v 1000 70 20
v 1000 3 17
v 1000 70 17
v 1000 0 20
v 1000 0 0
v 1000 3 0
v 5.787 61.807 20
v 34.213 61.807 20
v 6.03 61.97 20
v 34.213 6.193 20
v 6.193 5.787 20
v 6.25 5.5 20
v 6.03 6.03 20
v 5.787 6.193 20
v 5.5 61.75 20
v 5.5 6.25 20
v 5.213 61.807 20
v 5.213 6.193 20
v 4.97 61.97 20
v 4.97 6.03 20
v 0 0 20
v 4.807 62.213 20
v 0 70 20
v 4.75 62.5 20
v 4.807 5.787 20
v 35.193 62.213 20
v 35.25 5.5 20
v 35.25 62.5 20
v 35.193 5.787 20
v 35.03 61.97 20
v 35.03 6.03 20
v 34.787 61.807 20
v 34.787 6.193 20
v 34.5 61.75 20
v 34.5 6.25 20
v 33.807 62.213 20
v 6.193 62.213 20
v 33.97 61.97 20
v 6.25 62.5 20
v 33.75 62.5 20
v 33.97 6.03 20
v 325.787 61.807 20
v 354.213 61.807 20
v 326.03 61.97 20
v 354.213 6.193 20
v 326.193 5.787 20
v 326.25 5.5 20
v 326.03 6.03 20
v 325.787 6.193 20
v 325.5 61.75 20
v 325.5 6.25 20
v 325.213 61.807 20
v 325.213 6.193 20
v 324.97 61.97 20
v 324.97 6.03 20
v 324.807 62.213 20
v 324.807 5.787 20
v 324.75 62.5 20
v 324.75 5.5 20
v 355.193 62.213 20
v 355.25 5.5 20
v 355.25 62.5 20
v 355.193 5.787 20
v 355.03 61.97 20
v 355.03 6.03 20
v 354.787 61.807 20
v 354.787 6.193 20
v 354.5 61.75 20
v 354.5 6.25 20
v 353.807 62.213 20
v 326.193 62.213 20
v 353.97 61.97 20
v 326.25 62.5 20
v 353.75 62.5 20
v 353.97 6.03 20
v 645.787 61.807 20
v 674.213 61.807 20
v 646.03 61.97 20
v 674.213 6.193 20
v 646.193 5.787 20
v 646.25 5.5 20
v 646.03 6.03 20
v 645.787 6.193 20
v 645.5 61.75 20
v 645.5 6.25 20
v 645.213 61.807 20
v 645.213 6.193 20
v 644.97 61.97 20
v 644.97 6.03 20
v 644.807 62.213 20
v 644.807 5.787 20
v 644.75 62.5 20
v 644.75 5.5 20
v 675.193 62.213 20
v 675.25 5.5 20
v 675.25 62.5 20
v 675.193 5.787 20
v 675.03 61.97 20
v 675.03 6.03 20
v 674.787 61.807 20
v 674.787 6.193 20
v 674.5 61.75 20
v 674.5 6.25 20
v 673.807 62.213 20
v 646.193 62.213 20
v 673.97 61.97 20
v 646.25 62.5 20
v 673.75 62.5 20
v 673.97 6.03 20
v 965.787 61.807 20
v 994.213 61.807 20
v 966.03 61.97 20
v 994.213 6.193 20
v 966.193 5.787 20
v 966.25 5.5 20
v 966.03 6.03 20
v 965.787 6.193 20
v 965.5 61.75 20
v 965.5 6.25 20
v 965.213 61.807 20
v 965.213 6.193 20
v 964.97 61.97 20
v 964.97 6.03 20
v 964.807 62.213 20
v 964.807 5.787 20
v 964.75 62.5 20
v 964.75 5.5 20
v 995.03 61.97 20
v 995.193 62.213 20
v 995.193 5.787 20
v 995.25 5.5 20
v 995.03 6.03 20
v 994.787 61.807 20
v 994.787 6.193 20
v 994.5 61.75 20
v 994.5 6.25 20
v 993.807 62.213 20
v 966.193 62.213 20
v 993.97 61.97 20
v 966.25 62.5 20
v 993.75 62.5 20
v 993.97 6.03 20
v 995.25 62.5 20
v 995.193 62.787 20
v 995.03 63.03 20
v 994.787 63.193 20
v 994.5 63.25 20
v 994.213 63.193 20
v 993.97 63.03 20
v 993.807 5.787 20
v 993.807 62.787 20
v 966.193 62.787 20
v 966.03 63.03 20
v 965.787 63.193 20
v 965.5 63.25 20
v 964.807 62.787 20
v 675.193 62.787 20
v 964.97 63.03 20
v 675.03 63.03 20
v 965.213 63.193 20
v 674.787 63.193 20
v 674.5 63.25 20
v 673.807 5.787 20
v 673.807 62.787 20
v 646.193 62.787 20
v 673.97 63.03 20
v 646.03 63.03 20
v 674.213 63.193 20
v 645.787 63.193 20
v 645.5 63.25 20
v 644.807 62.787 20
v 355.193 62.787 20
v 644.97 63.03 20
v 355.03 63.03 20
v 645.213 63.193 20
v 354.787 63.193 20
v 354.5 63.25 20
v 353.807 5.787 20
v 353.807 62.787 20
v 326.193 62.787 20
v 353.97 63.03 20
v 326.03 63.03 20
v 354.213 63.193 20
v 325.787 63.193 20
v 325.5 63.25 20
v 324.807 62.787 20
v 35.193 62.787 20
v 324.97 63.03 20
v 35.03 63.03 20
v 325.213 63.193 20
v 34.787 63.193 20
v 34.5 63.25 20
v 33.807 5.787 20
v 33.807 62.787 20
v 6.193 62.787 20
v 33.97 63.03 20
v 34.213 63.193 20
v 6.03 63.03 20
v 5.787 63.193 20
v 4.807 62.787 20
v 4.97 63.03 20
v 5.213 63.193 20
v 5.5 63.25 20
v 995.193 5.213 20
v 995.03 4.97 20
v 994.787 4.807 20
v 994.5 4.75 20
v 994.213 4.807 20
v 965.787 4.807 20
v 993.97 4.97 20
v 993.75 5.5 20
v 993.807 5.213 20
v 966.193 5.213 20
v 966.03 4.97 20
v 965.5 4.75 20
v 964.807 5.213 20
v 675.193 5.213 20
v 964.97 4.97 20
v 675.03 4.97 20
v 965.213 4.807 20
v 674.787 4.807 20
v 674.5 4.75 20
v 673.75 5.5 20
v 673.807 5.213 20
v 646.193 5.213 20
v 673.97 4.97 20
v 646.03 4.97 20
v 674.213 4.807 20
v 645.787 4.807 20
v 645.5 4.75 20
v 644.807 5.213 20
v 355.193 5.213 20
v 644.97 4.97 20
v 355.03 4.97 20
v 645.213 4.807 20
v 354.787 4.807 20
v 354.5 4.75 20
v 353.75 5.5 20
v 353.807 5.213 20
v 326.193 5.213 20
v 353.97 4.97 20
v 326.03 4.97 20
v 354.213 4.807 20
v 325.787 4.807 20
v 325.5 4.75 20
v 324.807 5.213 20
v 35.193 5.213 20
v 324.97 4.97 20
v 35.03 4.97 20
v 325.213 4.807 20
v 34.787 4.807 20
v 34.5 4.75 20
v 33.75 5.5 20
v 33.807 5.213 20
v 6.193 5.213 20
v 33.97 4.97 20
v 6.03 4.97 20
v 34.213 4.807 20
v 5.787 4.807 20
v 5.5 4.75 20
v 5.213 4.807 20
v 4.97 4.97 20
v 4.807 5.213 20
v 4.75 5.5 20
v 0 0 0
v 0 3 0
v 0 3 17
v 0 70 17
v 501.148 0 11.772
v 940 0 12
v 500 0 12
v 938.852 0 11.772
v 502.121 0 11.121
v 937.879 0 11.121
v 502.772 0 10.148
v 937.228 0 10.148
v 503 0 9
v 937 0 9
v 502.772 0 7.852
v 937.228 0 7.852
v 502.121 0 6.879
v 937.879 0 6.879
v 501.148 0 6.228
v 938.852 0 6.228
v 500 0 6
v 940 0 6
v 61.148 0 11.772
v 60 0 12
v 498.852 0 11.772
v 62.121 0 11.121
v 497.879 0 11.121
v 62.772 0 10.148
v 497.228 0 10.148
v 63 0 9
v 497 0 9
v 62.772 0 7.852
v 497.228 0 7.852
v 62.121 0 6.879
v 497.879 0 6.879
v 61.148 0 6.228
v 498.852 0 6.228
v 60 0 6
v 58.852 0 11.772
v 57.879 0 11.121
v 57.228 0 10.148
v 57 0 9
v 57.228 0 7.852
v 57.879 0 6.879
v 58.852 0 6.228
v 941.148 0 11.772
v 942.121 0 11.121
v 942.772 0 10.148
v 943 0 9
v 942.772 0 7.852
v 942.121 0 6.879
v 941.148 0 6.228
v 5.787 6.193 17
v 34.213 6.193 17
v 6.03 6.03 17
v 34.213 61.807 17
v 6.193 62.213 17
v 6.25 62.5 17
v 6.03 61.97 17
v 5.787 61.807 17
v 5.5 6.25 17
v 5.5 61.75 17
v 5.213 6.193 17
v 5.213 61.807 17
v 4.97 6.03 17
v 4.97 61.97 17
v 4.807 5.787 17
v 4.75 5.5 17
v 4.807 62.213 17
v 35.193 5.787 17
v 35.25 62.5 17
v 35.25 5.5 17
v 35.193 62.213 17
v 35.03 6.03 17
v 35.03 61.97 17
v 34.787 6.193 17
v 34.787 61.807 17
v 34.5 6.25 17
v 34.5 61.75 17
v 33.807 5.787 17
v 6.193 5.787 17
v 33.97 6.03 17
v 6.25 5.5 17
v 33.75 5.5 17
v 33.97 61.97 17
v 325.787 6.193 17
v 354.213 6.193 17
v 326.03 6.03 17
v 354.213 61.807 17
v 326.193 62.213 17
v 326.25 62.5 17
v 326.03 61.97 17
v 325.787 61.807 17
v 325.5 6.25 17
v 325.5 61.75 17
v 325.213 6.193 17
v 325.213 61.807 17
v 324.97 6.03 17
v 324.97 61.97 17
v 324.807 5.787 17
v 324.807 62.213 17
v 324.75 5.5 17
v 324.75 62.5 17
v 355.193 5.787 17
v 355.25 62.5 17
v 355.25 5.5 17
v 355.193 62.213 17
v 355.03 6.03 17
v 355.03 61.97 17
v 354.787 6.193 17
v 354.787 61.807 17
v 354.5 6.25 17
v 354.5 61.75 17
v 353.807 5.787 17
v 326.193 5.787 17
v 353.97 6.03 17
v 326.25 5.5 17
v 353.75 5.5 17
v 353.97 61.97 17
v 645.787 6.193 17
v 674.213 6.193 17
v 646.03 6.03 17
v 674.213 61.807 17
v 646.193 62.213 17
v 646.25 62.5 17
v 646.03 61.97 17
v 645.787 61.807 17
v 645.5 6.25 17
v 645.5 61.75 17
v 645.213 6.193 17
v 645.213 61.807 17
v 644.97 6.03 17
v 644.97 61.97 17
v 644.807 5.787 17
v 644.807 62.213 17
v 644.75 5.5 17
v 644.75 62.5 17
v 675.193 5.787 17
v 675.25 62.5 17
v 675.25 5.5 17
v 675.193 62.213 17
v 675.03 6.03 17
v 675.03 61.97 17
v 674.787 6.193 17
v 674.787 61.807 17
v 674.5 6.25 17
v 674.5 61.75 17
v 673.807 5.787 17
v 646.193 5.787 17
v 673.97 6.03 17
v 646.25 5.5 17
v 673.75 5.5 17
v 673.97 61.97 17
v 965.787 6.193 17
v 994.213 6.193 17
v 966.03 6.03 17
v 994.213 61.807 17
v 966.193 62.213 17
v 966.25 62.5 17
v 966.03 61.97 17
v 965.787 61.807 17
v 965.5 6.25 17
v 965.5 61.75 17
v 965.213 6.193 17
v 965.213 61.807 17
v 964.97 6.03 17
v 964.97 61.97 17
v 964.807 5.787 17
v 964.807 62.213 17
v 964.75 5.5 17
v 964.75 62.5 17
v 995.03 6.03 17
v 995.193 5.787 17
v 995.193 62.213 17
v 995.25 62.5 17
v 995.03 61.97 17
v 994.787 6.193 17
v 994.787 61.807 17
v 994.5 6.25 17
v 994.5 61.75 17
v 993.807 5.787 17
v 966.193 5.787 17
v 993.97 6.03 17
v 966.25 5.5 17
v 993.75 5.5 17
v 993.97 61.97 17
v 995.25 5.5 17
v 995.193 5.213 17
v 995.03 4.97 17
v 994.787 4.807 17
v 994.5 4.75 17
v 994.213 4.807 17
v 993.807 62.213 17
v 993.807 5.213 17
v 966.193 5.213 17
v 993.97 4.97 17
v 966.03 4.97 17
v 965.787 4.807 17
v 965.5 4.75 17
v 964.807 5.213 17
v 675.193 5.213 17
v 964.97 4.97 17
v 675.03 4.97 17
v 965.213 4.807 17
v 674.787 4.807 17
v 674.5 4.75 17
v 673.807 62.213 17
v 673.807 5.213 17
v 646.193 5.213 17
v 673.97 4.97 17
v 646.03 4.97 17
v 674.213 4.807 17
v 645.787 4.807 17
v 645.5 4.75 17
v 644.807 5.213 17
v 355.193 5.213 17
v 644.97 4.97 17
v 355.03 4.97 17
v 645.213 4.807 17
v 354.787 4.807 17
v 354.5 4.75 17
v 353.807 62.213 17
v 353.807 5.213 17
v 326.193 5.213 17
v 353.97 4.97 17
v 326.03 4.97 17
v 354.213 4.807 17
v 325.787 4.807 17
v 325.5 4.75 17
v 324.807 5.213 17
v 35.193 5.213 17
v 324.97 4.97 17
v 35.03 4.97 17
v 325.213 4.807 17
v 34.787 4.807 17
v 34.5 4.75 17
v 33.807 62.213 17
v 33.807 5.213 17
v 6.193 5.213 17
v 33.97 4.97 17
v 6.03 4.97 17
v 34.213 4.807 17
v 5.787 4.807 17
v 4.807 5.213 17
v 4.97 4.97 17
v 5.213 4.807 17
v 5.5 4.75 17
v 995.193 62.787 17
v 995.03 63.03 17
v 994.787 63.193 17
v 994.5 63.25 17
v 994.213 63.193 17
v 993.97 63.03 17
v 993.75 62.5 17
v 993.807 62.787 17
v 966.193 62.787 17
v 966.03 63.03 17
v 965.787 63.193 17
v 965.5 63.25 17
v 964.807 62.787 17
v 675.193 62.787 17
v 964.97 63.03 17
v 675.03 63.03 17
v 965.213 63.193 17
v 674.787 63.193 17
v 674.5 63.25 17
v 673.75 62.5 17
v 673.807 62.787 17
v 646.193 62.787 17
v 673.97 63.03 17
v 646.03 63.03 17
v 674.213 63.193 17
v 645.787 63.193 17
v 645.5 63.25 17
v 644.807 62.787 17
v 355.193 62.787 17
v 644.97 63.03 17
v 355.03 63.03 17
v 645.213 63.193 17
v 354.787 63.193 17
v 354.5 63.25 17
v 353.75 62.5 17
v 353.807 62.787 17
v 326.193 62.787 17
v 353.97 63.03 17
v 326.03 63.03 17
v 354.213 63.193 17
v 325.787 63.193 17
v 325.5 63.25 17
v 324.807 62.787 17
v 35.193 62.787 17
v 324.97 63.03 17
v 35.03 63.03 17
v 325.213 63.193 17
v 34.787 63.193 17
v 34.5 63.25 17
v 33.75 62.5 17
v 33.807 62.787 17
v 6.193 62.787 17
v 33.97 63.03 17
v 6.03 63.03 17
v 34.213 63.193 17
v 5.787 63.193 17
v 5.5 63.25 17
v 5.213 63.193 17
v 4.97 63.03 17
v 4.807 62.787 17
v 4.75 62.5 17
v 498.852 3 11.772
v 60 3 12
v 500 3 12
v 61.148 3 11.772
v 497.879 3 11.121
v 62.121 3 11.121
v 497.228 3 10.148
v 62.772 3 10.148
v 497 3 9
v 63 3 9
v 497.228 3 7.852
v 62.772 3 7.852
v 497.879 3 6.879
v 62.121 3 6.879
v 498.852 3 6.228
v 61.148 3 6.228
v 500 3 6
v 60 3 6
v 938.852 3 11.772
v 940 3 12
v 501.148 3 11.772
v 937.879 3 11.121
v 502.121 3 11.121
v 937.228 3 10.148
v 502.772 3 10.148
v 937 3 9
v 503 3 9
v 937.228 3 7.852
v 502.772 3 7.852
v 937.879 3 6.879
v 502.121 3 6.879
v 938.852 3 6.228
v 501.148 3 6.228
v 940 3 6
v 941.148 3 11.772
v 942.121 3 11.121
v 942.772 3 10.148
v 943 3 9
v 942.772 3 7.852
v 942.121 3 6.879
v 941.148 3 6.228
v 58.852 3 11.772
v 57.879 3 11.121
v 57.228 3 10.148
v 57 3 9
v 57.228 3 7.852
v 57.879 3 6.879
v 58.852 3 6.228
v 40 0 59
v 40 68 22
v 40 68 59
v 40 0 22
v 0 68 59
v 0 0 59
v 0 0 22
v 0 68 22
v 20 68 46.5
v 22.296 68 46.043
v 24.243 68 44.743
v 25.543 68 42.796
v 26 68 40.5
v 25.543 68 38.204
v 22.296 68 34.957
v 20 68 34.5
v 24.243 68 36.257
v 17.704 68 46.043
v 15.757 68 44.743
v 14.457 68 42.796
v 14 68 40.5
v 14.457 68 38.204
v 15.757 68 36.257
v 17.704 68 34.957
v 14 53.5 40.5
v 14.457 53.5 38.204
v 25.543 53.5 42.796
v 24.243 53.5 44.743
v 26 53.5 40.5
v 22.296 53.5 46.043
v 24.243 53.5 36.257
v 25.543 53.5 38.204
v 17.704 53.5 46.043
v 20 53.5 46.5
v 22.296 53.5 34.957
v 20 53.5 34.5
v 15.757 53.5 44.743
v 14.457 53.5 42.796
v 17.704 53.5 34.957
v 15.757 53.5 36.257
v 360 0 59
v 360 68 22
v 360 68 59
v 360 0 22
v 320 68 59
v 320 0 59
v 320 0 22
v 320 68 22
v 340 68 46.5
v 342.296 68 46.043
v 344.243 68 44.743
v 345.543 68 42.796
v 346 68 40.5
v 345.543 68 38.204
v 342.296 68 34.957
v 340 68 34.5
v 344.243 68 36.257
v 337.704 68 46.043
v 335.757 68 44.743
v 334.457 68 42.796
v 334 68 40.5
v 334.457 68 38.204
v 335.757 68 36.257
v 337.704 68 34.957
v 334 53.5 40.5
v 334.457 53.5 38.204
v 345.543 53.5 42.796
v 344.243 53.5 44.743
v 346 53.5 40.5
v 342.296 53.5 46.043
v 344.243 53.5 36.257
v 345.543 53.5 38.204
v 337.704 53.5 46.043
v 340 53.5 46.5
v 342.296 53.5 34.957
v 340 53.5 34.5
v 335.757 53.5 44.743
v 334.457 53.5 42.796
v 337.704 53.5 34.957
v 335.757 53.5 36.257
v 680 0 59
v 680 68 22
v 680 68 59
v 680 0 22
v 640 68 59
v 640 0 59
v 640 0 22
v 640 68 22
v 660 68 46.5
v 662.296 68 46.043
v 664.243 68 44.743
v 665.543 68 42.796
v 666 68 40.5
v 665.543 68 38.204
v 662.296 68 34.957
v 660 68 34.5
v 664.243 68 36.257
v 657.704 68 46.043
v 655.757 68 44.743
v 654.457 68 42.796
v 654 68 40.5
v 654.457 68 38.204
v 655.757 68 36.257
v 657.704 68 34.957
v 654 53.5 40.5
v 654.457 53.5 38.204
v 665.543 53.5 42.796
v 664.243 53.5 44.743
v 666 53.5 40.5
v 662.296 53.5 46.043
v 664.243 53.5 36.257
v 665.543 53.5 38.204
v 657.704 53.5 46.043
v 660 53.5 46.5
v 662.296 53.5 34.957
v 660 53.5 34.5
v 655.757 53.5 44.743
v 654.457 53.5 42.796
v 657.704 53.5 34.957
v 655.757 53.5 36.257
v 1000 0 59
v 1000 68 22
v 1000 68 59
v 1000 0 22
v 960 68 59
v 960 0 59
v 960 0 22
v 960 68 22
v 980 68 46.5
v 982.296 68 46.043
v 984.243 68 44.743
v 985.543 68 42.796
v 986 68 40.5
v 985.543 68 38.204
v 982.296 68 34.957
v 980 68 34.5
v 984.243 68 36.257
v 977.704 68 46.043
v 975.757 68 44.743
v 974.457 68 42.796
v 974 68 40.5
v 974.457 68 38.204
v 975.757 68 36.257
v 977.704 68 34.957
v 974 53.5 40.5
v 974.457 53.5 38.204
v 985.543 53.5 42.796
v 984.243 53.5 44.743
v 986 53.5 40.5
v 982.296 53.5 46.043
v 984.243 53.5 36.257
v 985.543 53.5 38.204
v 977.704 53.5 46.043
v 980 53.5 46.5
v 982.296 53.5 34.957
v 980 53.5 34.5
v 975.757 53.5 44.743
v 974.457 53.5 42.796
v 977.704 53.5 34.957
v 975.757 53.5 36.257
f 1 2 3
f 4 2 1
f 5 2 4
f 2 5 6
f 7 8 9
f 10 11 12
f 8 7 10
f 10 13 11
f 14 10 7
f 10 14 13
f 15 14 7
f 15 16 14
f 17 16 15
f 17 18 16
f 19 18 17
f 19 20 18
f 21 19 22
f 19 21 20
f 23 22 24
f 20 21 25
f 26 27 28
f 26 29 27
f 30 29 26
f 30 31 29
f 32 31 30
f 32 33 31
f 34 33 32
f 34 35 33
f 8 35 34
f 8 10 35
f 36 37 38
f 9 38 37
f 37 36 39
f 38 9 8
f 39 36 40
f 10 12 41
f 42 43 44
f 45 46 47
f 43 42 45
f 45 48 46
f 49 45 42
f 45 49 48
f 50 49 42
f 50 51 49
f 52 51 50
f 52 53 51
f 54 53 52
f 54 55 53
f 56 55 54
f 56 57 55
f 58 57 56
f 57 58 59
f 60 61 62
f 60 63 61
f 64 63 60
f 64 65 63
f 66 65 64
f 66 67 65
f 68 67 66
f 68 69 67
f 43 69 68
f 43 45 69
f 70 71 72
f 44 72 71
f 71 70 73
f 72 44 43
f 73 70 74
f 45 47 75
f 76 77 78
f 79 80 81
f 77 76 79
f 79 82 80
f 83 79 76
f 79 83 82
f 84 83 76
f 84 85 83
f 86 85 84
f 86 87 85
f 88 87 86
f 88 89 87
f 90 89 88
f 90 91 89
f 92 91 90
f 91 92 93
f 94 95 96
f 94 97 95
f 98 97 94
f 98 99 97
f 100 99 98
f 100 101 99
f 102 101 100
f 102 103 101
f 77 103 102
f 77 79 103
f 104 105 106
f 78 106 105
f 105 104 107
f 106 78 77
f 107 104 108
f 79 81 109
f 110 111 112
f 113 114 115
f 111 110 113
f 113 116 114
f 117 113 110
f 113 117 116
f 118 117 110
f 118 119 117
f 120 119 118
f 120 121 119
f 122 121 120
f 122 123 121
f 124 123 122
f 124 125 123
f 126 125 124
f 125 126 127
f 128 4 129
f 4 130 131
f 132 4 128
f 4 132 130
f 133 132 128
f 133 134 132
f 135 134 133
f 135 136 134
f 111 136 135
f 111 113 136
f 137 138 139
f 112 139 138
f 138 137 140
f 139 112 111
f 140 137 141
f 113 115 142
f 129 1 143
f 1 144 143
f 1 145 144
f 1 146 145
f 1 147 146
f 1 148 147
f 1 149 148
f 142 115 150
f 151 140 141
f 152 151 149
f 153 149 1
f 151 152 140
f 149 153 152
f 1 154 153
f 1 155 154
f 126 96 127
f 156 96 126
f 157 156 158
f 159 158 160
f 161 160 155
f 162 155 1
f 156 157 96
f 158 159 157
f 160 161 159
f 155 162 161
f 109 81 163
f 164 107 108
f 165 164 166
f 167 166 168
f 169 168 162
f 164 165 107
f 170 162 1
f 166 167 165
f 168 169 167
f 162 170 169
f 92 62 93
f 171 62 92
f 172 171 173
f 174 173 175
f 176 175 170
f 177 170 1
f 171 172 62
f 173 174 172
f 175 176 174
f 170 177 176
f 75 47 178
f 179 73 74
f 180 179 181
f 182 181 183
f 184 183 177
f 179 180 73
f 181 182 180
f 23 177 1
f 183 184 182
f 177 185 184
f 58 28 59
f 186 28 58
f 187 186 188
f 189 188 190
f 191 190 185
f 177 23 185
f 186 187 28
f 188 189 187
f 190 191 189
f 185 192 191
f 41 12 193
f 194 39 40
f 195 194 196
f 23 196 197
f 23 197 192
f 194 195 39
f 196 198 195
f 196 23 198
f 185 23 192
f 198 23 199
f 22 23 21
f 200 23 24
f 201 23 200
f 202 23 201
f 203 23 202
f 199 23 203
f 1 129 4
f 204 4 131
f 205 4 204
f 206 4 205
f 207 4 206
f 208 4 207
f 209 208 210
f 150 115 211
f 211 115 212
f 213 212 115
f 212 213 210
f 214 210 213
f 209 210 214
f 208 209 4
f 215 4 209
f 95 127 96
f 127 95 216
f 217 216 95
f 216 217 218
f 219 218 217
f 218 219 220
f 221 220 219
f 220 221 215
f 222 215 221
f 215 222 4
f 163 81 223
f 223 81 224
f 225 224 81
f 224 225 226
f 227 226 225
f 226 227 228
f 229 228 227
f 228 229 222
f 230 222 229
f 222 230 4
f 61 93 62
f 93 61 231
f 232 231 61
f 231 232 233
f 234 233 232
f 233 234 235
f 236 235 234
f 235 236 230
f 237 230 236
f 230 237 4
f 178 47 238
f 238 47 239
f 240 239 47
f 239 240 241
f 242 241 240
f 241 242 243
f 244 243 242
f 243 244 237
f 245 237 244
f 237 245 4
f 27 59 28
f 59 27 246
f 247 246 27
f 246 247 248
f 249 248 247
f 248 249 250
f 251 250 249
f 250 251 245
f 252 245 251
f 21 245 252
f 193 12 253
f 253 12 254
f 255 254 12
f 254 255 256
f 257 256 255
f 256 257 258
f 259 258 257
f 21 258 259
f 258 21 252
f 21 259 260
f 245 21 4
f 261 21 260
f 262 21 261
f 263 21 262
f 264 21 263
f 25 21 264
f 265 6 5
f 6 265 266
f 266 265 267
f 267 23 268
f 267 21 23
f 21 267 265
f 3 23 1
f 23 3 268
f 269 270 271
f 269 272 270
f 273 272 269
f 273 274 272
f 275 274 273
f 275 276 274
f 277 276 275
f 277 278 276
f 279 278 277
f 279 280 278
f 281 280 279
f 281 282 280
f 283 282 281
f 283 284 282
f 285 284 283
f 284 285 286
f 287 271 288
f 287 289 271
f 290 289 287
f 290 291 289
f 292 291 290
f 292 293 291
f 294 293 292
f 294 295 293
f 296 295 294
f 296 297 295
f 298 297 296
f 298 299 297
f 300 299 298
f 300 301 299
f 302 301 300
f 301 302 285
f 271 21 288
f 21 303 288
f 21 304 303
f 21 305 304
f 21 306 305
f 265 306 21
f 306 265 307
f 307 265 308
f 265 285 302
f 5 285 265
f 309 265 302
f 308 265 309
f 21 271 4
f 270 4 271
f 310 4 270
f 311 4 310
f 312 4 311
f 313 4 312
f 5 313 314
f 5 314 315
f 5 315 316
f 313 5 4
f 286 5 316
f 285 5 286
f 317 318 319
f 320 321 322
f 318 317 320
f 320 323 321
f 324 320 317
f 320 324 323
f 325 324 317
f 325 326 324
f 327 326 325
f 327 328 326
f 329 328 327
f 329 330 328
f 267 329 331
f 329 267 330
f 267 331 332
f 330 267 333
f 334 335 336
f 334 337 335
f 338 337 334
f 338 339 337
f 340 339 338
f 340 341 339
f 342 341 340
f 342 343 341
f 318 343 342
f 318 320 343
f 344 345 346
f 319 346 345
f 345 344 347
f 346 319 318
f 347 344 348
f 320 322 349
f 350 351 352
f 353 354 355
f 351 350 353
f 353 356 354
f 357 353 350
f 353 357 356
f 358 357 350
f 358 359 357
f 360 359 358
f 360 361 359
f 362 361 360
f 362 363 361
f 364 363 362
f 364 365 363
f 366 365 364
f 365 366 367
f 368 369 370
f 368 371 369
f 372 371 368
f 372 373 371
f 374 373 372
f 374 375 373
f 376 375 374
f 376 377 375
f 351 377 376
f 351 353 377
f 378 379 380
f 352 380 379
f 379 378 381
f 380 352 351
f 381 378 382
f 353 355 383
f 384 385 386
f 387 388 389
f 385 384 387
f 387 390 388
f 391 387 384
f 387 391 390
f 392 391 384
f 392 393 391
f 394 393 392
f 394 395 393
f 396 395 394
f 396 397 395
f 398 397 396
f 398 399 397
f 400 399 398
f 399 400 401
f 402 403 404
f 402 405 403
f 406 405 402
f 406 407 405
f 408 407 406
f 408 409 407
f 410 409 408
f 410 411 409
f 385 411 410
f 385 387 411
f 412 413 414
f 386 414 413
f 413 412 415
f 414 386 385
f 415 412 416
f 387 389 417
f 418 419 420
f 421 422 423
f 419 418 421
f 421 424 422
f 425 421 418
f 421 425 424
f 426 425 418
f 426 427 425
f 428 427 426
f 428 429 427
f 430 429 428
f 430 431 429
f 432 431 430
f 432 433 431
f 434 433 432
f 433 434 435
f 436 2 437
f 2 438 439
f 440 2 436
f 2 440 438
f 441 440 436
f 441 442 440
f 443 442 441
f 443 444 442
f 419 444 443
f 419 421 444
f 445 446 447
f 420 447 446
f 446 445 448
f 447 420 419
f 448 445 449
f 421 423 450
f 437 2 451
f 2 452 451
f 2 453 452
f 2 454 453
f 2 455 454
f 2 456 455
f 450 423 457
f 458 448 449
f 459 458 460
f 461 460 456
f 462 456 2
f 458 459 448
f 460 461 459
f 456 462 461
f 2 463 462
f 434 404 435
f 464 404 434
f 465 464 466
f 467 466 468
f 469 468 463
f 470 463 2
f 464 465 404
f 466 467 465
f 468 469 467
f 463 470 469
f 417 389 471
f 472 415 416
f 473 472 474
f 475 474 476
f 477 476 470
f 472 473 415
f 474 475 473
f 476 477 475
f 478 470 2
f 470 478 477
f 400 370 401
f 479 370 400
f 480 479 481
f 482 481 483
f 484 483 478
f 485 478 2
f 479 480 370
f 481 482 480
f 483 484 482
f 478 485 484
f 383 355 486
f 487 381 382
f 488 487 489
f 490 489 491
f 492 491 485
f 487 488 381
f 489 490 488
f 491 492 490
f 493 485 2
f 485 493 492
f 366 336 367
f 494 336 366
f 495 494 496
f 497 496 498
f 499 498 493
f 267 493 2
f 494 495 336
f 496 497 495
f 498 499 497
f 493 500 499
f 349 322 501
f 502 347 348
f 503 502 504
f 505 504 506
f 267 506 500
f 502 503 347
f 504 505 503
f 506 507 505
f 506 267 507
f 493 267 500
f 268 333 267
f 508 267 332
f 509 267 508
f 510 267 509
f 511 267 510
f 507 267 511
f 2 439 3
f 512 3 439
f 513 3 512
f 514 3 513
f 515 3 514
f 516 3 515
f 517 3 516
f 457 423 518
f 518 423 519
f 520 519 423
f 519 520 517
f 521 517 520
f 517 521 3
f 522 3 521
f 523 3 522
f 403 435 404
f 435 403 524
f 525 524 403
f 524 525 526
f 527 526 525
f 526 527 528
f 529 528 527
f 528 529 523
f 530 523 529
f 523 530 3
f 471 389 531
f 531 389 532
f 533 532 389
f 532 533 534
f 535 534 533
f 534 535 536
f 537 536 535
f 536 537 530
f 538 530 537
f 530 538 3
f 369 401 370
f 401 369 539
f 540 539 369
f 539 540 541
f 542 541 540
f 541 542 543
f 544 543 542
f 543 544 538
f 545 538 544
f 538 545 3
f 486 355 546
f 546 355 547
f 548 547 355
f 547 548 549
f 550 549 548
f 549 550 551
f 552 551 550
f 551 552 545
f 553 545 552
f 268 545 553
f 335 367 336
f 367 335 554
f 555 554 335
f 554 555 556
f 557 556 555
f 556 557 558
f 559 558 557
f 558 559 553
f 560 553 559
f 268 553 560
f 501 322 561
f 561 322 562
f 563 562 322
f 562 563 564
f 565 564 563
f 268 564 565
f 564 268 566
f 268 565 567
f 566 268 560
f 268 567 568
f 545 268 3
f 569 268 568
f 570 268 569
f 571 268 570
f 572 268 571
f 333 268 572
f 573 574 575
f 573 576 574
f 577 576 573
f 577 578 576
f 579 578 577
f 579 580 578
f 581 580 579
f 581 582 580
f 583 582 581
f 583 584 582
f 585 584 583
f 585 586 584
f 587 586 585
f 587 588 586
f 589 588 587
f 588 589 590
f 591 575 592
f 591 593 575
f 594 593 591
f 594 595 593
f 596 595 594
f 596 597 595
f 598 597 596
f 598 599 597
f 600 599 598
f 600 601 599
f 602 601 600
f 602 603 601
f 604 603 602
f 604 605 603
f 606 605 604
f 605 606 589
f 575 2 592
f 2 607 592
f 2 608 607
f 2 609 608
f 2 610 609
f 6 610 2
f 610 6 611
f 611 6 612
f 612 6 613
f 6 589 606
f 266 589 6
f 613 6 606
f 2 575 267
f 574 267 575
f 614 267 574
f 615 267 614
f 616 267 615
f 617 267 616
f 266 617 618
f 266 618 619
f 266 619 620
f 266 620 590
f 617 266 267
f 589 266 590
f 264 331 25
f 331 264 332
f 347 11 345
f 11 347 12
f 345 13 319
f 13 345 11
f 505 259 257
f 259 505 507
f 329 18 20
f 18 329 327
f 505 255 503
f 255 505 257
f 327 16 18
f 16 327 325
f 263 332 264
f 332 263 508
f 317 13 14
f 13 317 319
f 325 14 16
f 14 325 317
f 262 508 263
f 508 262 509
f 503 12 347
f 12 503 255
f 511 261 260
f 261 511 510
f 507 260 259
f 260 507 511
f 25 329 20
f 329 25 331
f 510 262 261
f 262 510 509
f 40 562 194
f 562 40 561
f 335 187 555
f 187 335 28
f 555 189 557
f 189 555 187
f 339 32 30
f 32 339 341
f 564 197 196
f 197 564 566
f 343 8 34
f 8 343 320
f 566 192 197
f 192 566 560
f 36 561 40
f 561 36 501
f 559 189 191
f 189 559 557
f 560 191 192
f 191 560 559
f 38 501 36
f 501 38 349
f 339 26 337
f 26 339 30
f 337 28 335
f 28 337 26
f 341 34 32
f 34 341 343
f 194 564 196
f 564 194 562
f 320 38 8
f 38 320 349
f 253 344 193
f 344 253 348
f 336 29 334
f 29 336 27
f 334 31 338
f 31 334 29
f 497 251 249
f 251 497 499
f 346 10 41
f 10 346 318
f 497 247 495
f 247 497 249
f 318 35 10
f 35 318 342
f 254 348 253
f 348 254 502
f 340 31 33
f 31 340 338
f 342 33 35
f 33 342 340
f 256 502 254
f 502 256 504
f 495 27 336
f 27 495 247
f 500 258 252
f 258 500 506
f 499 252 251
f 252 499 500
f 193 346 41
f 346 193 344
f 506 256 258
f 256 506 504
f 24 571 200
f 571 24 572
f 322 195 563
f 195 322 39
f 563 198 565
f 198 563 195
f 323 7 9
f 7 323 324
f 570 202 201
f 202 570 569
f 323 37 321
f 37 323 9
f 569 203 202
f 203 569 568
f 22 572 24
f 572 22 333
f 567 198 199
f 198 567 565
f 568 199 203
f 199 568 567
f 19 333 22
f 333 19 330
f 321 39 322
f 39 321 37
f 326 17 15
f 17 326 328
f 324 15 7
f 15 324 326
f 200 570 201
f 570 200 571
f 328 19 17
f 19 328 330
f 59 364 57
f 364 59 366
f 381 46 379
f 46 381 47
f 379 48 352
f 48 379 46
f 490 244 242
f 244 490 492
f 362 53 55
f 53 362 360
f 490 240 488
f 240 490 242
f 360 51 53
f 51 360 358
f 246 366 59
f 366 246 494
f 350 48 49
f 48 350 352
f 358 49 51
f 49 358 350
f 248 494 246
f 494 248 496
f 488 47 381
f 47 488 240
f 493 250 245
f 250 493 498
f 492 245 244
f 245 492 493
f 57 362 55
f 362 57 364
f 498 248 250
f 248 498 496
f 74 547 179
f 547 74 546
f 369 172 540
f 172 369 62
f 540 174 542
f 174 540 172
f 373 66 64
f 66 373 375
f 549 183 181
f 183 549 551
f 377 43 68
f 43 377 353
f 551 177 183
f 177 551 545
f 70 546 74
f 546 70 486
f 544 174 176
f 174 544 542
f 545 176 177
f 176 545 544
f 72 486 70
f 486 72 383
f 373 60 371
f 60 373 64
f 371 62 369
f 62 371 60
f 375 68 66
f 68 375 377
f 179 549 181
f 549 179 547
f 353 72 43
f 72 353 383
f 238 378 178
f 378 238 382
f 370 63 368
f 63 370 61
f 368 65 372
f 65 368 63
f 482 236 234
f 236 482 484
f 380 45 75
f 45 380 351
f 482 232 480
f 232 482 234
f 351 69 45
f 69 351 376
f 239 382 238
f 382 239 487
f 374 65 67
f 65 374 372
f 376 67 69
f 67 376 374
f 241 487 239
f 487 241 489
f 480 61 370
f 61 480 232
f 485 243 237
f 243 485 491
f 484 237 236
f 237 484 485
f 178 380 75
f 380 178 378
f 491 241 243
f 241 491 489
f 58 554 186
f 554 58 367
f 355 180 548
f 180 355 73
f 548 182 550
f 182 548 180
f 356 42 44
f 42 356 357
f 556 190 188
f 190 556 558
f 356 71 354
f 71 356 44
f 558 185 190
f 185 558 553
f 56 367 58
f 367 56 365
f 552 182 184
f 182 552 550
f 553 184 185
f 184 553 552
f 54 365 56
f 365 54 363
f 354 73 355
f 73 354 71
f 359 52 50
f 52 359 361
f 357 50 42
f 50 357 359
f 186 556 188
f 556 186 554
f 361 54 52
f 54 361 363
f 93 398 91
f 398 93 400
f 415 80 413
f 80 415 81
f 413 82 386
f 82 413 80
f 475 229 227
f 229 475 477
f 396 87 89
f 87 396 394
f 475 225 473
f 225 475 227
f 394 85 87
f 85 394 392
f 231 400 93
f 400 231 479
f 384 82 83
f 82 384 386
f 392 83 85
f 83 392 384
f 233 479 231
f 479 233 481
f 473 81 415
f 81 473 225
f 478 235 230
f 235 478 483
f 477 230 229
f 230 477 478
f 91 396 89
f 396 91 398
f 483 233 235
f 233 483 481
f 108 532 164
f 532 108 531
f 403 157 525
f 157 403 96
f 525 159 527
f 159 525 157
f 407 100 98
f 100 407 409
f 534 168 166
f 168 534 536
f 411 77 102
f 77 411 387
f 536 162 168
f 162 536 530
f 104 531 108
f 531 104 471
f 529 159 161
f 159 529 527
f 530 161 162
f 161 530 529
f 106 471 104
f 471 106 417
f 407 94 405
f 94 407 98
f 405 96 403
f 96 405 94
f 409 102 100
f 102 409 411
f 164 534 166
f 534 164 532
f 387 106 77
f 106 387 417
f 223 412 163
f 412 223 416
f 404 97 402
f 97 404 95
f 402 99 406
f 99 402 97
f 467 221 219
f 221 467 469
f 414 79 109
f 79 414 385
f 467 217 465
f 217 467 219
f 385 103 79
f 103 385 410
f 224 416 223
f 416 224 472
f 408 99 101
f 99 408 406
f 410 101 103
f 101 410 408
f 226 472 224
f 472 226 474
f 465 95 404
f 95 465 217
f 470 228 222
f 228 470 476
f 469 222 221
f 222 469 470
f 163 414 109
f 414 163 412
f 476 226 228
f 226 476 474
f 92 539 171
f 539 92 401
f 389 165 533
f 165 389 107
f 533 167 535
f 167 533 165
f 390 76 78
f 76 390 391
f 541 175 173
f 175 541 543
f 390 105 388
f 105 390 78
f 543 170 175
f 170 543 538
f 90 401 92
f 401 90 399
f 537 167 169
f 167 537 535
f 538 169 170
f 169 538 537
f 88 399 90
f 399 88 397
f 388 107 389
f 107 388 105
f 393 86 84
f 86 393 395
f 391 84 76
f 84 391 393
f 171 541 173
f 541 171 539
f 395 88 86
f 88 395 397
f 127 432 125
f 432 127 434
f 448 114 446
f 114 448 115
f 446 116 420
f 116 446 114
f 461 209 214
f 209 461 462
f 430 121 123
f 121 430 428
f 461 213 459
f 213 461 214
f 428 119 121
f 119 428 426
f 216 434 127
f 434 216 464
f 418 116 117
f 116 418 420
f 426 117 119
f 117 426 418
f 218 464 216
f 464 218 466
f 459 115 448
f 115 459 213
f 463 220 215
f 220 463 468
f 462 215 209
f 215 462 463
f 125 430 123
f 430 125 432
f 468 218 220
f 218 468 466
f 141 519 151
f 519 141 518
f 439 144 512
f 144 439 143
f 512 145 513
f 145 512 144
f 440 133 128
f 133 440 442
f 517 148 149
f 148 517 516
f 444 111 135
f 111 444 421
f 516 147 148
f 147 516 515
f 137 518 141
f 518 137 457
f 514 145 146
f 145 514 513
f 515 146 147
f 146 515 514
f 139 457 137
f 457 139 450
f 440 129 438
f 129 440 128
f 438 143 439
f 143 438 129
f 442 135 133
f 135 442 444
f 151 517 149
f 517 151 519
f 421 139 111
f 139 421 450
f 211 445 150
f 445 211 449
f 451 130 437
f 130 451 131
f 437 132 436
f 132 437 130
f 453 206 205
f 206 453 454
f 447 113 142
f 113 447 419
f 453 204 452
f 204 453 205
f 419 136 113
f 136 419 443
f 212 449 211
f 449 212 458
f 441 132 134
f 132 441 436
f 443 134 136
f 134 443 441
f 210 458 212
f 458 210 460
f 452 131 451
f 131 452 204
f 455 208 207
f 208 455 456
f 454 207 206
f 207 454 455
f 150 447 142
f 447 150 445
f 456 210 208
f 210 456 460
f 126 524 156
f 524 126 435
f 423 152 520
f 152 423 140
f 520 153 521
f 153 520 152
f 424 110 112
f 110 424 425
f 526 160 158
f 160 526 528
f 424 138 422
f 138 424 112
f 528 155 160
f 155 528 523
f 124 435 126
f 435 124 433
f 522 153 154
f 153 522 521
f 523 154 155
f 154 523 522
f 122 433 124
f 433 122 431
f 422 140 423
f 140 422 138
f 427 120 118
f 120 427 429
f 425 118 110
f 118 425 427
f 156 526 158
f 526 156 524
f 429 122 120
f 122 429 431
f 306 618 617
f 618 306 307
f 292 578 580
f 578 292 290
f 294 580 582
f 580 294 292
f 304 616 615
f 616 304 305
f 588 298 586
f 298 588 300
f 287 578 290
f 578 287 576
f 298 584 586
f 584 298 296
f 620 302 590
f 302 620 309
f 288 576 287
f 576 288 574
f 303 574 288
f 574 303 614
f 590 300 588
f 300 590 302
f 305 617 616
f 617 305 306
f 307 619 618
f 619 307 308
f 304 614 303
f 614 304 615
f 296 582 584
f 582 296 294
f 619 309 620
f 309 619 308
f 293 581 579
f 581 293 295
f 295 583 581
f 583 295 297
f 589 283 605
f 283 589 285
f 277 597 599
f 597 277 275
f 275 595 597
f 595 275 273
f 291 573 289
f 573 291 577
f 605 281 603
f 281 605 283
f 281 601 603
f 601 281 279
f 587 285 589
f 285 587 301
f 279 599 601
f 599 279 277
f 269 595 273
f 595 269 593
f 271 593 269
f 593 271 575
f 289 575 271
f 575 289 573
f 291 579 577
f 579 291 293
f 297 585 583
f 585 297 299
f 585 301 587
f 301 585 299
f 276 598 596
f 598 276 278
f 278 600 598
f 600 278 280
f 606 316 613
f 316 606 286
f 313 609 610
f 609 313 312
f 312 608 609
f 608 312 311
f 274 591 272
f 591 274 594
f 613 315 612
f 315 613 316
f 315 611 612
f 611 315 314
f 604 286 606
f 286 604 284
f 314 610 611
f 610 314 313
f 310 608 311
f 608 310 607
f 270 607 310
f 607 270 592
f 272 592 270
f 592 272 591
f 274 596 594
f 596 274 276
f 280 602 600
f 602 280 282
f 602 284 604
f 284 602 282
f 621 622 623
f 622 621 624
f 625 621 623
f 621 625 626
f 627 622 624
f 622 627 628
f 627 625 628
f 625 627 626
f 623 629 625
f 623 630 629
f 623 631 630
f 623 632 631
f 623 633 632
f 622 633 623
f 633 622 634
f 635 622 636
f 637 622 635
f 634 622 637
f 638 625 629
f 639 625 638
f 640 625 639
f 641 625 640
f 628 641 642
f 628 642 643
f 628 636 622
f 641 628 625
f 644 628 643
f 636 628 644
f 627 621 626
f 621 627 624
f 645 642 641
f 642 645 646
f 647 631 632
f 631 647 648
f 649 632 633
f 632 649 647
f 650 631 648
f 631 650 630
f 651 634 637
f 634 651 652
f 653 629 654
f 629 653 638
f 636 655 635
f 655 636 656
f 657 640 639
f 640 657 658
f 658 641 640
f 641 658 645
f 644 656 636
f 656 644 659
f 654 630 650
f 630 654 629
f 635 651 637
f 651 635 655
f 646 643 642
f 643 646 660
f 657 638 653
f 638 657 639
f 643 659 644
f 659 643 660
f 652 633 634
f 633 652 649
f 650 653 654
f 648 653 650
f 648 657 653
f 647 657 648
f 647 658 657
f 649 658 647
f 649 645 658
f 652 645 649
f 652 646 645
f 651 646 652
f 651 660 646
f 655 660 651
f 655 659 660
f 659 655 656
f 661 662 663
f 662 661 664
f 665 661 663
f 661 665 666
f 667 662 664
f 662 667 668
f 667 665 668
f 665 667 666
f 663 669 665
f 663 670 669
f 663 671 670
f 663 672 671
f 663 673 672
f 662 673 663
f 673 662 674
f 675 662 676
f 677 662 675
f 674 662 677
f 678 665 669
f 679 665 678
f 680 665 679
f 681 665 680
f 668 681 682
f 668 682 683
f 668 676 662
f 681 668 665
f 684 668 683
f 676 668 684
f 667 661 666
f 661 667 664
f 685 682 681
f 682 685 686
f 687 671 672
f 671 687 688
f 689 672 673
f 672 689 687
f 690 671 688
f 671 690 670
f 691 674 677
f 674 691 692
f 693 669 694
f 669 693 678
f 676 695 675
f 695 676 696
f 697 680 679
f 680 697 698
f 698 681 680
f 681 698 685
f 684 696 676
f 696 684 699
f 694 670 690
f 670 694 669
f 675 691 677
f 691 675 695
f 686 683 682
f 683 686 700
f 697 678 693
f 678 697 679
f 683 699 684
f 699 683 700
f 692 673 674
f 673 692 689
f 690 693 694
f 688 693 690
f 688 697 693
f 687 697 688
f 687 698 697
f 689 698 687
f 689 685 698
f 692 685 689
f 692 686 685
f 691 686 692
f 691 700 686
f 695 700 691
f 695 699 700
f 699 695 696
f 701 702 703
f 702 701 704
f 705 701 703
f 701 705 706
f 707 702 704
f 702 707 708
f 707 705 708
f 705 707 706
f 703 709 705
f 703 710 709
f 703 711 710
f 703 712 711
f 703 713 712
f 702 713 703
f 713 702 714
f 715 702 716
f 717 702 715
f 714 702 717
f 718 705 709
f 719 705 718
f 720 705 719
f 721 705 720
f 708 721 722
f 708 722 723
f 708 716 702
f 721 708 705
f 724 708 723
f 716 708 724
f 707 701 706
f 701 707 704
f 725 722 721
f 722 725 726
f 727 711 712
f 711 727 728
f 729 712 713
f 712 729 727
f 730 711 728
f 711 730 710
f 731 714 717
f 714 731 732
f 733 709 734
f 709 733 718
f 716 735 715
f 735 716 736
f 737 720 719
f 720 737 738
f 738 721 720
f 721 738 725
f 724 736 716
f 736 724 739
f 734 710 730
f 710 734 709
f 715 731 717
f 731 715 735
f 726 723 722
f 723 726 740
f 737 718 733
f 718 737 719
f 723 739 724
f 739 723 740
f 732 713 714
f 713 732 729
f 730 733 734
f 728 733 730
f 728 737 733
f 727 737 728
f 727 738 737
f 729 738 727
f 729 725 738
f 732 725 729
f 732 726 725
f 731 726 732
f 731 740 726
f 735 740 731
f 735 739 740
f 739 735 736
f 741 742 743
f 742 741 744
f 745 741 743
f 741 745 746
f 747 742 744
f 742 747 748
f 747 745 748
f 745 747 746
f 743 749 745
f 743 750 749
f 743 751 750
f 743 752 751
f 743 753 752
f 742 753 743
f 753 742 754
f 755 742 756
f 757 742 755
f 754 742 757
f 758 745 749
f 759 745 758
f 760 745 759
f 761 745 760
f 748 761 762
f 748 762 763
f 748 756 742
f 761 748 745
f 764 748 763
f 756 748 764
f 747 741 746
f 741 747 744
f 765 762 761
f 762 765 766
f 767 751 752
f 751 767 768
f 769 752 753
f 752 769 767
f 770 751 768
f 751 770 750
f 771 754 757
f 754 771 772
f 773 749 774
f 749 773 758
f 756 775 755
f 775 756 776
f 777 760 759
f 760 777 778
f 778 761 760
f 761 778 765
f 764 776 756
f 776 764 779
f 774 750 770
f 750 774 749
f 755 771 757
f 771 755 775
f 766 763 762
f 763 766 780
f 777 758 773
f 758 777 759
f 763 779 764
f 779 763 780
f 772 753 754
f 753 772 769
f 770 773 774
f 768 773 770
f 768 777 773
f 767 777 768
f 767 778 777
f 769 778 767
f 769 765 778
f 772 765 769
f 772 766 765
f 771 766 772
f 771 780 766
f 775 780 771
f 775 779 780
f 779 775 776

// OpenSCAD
$fn = 16;

module rgb_laser() {
    difference() {
        cube([40, 68, 37]);
        rotate([90, 0, 0])
        translate([20, 18.5, -61])
        cylinder(h = 15, d = 12, center = true);
    }
}

module rgb_holes() {
    translate([5.5, 5.5, 9])
    cylinder(h = 20, d = 1.5, center = true);
    translate([34.5, 62.5, 9])
    cylinder(h = 20, d = 1.5, center = true);
    translate([34.5, 5.5, 9])
    cylinder(h = 20, d = 1.5, center = true);
    translate([5.5, 62.5, 9])
    cylinder(h = 20, d = 1.5, center = true);
}

translate([0, 0, 22])
    rgb_laser();
translate([320, 0, 22])
    rgb_laser();
translate([640, 0, 22])
    rgb_laser();
translate([960, 0, 22])
    rgb_laser();

difference() {
    difference() {
        cube([1000, 70, 20]);
        translate([-1, 3, -3])
        cube([1010, 70, 20]);
    }
    
    rotate([90, 0, 0])
    translate([60, 9, 0])
    cylinder(h = 20, d = 6, center = true);
    rotate([90, 0, 0])
    translate([500, 9, 0])
    cylinder(h = 20, d = 6, center = true);
    rotate([90, 0, 0])
    translate([940, 9, 0])
    cylinder(h = 20, d = 6, center = true);

    translate([0, 0, 2])
    rgb_holes();
    translate([320, 0, 2])
    rgb_holes();
    translate([640, 0, 2])
    rgb_holes();
    translate([960, 0, 2])
    rgb_holes();
}
